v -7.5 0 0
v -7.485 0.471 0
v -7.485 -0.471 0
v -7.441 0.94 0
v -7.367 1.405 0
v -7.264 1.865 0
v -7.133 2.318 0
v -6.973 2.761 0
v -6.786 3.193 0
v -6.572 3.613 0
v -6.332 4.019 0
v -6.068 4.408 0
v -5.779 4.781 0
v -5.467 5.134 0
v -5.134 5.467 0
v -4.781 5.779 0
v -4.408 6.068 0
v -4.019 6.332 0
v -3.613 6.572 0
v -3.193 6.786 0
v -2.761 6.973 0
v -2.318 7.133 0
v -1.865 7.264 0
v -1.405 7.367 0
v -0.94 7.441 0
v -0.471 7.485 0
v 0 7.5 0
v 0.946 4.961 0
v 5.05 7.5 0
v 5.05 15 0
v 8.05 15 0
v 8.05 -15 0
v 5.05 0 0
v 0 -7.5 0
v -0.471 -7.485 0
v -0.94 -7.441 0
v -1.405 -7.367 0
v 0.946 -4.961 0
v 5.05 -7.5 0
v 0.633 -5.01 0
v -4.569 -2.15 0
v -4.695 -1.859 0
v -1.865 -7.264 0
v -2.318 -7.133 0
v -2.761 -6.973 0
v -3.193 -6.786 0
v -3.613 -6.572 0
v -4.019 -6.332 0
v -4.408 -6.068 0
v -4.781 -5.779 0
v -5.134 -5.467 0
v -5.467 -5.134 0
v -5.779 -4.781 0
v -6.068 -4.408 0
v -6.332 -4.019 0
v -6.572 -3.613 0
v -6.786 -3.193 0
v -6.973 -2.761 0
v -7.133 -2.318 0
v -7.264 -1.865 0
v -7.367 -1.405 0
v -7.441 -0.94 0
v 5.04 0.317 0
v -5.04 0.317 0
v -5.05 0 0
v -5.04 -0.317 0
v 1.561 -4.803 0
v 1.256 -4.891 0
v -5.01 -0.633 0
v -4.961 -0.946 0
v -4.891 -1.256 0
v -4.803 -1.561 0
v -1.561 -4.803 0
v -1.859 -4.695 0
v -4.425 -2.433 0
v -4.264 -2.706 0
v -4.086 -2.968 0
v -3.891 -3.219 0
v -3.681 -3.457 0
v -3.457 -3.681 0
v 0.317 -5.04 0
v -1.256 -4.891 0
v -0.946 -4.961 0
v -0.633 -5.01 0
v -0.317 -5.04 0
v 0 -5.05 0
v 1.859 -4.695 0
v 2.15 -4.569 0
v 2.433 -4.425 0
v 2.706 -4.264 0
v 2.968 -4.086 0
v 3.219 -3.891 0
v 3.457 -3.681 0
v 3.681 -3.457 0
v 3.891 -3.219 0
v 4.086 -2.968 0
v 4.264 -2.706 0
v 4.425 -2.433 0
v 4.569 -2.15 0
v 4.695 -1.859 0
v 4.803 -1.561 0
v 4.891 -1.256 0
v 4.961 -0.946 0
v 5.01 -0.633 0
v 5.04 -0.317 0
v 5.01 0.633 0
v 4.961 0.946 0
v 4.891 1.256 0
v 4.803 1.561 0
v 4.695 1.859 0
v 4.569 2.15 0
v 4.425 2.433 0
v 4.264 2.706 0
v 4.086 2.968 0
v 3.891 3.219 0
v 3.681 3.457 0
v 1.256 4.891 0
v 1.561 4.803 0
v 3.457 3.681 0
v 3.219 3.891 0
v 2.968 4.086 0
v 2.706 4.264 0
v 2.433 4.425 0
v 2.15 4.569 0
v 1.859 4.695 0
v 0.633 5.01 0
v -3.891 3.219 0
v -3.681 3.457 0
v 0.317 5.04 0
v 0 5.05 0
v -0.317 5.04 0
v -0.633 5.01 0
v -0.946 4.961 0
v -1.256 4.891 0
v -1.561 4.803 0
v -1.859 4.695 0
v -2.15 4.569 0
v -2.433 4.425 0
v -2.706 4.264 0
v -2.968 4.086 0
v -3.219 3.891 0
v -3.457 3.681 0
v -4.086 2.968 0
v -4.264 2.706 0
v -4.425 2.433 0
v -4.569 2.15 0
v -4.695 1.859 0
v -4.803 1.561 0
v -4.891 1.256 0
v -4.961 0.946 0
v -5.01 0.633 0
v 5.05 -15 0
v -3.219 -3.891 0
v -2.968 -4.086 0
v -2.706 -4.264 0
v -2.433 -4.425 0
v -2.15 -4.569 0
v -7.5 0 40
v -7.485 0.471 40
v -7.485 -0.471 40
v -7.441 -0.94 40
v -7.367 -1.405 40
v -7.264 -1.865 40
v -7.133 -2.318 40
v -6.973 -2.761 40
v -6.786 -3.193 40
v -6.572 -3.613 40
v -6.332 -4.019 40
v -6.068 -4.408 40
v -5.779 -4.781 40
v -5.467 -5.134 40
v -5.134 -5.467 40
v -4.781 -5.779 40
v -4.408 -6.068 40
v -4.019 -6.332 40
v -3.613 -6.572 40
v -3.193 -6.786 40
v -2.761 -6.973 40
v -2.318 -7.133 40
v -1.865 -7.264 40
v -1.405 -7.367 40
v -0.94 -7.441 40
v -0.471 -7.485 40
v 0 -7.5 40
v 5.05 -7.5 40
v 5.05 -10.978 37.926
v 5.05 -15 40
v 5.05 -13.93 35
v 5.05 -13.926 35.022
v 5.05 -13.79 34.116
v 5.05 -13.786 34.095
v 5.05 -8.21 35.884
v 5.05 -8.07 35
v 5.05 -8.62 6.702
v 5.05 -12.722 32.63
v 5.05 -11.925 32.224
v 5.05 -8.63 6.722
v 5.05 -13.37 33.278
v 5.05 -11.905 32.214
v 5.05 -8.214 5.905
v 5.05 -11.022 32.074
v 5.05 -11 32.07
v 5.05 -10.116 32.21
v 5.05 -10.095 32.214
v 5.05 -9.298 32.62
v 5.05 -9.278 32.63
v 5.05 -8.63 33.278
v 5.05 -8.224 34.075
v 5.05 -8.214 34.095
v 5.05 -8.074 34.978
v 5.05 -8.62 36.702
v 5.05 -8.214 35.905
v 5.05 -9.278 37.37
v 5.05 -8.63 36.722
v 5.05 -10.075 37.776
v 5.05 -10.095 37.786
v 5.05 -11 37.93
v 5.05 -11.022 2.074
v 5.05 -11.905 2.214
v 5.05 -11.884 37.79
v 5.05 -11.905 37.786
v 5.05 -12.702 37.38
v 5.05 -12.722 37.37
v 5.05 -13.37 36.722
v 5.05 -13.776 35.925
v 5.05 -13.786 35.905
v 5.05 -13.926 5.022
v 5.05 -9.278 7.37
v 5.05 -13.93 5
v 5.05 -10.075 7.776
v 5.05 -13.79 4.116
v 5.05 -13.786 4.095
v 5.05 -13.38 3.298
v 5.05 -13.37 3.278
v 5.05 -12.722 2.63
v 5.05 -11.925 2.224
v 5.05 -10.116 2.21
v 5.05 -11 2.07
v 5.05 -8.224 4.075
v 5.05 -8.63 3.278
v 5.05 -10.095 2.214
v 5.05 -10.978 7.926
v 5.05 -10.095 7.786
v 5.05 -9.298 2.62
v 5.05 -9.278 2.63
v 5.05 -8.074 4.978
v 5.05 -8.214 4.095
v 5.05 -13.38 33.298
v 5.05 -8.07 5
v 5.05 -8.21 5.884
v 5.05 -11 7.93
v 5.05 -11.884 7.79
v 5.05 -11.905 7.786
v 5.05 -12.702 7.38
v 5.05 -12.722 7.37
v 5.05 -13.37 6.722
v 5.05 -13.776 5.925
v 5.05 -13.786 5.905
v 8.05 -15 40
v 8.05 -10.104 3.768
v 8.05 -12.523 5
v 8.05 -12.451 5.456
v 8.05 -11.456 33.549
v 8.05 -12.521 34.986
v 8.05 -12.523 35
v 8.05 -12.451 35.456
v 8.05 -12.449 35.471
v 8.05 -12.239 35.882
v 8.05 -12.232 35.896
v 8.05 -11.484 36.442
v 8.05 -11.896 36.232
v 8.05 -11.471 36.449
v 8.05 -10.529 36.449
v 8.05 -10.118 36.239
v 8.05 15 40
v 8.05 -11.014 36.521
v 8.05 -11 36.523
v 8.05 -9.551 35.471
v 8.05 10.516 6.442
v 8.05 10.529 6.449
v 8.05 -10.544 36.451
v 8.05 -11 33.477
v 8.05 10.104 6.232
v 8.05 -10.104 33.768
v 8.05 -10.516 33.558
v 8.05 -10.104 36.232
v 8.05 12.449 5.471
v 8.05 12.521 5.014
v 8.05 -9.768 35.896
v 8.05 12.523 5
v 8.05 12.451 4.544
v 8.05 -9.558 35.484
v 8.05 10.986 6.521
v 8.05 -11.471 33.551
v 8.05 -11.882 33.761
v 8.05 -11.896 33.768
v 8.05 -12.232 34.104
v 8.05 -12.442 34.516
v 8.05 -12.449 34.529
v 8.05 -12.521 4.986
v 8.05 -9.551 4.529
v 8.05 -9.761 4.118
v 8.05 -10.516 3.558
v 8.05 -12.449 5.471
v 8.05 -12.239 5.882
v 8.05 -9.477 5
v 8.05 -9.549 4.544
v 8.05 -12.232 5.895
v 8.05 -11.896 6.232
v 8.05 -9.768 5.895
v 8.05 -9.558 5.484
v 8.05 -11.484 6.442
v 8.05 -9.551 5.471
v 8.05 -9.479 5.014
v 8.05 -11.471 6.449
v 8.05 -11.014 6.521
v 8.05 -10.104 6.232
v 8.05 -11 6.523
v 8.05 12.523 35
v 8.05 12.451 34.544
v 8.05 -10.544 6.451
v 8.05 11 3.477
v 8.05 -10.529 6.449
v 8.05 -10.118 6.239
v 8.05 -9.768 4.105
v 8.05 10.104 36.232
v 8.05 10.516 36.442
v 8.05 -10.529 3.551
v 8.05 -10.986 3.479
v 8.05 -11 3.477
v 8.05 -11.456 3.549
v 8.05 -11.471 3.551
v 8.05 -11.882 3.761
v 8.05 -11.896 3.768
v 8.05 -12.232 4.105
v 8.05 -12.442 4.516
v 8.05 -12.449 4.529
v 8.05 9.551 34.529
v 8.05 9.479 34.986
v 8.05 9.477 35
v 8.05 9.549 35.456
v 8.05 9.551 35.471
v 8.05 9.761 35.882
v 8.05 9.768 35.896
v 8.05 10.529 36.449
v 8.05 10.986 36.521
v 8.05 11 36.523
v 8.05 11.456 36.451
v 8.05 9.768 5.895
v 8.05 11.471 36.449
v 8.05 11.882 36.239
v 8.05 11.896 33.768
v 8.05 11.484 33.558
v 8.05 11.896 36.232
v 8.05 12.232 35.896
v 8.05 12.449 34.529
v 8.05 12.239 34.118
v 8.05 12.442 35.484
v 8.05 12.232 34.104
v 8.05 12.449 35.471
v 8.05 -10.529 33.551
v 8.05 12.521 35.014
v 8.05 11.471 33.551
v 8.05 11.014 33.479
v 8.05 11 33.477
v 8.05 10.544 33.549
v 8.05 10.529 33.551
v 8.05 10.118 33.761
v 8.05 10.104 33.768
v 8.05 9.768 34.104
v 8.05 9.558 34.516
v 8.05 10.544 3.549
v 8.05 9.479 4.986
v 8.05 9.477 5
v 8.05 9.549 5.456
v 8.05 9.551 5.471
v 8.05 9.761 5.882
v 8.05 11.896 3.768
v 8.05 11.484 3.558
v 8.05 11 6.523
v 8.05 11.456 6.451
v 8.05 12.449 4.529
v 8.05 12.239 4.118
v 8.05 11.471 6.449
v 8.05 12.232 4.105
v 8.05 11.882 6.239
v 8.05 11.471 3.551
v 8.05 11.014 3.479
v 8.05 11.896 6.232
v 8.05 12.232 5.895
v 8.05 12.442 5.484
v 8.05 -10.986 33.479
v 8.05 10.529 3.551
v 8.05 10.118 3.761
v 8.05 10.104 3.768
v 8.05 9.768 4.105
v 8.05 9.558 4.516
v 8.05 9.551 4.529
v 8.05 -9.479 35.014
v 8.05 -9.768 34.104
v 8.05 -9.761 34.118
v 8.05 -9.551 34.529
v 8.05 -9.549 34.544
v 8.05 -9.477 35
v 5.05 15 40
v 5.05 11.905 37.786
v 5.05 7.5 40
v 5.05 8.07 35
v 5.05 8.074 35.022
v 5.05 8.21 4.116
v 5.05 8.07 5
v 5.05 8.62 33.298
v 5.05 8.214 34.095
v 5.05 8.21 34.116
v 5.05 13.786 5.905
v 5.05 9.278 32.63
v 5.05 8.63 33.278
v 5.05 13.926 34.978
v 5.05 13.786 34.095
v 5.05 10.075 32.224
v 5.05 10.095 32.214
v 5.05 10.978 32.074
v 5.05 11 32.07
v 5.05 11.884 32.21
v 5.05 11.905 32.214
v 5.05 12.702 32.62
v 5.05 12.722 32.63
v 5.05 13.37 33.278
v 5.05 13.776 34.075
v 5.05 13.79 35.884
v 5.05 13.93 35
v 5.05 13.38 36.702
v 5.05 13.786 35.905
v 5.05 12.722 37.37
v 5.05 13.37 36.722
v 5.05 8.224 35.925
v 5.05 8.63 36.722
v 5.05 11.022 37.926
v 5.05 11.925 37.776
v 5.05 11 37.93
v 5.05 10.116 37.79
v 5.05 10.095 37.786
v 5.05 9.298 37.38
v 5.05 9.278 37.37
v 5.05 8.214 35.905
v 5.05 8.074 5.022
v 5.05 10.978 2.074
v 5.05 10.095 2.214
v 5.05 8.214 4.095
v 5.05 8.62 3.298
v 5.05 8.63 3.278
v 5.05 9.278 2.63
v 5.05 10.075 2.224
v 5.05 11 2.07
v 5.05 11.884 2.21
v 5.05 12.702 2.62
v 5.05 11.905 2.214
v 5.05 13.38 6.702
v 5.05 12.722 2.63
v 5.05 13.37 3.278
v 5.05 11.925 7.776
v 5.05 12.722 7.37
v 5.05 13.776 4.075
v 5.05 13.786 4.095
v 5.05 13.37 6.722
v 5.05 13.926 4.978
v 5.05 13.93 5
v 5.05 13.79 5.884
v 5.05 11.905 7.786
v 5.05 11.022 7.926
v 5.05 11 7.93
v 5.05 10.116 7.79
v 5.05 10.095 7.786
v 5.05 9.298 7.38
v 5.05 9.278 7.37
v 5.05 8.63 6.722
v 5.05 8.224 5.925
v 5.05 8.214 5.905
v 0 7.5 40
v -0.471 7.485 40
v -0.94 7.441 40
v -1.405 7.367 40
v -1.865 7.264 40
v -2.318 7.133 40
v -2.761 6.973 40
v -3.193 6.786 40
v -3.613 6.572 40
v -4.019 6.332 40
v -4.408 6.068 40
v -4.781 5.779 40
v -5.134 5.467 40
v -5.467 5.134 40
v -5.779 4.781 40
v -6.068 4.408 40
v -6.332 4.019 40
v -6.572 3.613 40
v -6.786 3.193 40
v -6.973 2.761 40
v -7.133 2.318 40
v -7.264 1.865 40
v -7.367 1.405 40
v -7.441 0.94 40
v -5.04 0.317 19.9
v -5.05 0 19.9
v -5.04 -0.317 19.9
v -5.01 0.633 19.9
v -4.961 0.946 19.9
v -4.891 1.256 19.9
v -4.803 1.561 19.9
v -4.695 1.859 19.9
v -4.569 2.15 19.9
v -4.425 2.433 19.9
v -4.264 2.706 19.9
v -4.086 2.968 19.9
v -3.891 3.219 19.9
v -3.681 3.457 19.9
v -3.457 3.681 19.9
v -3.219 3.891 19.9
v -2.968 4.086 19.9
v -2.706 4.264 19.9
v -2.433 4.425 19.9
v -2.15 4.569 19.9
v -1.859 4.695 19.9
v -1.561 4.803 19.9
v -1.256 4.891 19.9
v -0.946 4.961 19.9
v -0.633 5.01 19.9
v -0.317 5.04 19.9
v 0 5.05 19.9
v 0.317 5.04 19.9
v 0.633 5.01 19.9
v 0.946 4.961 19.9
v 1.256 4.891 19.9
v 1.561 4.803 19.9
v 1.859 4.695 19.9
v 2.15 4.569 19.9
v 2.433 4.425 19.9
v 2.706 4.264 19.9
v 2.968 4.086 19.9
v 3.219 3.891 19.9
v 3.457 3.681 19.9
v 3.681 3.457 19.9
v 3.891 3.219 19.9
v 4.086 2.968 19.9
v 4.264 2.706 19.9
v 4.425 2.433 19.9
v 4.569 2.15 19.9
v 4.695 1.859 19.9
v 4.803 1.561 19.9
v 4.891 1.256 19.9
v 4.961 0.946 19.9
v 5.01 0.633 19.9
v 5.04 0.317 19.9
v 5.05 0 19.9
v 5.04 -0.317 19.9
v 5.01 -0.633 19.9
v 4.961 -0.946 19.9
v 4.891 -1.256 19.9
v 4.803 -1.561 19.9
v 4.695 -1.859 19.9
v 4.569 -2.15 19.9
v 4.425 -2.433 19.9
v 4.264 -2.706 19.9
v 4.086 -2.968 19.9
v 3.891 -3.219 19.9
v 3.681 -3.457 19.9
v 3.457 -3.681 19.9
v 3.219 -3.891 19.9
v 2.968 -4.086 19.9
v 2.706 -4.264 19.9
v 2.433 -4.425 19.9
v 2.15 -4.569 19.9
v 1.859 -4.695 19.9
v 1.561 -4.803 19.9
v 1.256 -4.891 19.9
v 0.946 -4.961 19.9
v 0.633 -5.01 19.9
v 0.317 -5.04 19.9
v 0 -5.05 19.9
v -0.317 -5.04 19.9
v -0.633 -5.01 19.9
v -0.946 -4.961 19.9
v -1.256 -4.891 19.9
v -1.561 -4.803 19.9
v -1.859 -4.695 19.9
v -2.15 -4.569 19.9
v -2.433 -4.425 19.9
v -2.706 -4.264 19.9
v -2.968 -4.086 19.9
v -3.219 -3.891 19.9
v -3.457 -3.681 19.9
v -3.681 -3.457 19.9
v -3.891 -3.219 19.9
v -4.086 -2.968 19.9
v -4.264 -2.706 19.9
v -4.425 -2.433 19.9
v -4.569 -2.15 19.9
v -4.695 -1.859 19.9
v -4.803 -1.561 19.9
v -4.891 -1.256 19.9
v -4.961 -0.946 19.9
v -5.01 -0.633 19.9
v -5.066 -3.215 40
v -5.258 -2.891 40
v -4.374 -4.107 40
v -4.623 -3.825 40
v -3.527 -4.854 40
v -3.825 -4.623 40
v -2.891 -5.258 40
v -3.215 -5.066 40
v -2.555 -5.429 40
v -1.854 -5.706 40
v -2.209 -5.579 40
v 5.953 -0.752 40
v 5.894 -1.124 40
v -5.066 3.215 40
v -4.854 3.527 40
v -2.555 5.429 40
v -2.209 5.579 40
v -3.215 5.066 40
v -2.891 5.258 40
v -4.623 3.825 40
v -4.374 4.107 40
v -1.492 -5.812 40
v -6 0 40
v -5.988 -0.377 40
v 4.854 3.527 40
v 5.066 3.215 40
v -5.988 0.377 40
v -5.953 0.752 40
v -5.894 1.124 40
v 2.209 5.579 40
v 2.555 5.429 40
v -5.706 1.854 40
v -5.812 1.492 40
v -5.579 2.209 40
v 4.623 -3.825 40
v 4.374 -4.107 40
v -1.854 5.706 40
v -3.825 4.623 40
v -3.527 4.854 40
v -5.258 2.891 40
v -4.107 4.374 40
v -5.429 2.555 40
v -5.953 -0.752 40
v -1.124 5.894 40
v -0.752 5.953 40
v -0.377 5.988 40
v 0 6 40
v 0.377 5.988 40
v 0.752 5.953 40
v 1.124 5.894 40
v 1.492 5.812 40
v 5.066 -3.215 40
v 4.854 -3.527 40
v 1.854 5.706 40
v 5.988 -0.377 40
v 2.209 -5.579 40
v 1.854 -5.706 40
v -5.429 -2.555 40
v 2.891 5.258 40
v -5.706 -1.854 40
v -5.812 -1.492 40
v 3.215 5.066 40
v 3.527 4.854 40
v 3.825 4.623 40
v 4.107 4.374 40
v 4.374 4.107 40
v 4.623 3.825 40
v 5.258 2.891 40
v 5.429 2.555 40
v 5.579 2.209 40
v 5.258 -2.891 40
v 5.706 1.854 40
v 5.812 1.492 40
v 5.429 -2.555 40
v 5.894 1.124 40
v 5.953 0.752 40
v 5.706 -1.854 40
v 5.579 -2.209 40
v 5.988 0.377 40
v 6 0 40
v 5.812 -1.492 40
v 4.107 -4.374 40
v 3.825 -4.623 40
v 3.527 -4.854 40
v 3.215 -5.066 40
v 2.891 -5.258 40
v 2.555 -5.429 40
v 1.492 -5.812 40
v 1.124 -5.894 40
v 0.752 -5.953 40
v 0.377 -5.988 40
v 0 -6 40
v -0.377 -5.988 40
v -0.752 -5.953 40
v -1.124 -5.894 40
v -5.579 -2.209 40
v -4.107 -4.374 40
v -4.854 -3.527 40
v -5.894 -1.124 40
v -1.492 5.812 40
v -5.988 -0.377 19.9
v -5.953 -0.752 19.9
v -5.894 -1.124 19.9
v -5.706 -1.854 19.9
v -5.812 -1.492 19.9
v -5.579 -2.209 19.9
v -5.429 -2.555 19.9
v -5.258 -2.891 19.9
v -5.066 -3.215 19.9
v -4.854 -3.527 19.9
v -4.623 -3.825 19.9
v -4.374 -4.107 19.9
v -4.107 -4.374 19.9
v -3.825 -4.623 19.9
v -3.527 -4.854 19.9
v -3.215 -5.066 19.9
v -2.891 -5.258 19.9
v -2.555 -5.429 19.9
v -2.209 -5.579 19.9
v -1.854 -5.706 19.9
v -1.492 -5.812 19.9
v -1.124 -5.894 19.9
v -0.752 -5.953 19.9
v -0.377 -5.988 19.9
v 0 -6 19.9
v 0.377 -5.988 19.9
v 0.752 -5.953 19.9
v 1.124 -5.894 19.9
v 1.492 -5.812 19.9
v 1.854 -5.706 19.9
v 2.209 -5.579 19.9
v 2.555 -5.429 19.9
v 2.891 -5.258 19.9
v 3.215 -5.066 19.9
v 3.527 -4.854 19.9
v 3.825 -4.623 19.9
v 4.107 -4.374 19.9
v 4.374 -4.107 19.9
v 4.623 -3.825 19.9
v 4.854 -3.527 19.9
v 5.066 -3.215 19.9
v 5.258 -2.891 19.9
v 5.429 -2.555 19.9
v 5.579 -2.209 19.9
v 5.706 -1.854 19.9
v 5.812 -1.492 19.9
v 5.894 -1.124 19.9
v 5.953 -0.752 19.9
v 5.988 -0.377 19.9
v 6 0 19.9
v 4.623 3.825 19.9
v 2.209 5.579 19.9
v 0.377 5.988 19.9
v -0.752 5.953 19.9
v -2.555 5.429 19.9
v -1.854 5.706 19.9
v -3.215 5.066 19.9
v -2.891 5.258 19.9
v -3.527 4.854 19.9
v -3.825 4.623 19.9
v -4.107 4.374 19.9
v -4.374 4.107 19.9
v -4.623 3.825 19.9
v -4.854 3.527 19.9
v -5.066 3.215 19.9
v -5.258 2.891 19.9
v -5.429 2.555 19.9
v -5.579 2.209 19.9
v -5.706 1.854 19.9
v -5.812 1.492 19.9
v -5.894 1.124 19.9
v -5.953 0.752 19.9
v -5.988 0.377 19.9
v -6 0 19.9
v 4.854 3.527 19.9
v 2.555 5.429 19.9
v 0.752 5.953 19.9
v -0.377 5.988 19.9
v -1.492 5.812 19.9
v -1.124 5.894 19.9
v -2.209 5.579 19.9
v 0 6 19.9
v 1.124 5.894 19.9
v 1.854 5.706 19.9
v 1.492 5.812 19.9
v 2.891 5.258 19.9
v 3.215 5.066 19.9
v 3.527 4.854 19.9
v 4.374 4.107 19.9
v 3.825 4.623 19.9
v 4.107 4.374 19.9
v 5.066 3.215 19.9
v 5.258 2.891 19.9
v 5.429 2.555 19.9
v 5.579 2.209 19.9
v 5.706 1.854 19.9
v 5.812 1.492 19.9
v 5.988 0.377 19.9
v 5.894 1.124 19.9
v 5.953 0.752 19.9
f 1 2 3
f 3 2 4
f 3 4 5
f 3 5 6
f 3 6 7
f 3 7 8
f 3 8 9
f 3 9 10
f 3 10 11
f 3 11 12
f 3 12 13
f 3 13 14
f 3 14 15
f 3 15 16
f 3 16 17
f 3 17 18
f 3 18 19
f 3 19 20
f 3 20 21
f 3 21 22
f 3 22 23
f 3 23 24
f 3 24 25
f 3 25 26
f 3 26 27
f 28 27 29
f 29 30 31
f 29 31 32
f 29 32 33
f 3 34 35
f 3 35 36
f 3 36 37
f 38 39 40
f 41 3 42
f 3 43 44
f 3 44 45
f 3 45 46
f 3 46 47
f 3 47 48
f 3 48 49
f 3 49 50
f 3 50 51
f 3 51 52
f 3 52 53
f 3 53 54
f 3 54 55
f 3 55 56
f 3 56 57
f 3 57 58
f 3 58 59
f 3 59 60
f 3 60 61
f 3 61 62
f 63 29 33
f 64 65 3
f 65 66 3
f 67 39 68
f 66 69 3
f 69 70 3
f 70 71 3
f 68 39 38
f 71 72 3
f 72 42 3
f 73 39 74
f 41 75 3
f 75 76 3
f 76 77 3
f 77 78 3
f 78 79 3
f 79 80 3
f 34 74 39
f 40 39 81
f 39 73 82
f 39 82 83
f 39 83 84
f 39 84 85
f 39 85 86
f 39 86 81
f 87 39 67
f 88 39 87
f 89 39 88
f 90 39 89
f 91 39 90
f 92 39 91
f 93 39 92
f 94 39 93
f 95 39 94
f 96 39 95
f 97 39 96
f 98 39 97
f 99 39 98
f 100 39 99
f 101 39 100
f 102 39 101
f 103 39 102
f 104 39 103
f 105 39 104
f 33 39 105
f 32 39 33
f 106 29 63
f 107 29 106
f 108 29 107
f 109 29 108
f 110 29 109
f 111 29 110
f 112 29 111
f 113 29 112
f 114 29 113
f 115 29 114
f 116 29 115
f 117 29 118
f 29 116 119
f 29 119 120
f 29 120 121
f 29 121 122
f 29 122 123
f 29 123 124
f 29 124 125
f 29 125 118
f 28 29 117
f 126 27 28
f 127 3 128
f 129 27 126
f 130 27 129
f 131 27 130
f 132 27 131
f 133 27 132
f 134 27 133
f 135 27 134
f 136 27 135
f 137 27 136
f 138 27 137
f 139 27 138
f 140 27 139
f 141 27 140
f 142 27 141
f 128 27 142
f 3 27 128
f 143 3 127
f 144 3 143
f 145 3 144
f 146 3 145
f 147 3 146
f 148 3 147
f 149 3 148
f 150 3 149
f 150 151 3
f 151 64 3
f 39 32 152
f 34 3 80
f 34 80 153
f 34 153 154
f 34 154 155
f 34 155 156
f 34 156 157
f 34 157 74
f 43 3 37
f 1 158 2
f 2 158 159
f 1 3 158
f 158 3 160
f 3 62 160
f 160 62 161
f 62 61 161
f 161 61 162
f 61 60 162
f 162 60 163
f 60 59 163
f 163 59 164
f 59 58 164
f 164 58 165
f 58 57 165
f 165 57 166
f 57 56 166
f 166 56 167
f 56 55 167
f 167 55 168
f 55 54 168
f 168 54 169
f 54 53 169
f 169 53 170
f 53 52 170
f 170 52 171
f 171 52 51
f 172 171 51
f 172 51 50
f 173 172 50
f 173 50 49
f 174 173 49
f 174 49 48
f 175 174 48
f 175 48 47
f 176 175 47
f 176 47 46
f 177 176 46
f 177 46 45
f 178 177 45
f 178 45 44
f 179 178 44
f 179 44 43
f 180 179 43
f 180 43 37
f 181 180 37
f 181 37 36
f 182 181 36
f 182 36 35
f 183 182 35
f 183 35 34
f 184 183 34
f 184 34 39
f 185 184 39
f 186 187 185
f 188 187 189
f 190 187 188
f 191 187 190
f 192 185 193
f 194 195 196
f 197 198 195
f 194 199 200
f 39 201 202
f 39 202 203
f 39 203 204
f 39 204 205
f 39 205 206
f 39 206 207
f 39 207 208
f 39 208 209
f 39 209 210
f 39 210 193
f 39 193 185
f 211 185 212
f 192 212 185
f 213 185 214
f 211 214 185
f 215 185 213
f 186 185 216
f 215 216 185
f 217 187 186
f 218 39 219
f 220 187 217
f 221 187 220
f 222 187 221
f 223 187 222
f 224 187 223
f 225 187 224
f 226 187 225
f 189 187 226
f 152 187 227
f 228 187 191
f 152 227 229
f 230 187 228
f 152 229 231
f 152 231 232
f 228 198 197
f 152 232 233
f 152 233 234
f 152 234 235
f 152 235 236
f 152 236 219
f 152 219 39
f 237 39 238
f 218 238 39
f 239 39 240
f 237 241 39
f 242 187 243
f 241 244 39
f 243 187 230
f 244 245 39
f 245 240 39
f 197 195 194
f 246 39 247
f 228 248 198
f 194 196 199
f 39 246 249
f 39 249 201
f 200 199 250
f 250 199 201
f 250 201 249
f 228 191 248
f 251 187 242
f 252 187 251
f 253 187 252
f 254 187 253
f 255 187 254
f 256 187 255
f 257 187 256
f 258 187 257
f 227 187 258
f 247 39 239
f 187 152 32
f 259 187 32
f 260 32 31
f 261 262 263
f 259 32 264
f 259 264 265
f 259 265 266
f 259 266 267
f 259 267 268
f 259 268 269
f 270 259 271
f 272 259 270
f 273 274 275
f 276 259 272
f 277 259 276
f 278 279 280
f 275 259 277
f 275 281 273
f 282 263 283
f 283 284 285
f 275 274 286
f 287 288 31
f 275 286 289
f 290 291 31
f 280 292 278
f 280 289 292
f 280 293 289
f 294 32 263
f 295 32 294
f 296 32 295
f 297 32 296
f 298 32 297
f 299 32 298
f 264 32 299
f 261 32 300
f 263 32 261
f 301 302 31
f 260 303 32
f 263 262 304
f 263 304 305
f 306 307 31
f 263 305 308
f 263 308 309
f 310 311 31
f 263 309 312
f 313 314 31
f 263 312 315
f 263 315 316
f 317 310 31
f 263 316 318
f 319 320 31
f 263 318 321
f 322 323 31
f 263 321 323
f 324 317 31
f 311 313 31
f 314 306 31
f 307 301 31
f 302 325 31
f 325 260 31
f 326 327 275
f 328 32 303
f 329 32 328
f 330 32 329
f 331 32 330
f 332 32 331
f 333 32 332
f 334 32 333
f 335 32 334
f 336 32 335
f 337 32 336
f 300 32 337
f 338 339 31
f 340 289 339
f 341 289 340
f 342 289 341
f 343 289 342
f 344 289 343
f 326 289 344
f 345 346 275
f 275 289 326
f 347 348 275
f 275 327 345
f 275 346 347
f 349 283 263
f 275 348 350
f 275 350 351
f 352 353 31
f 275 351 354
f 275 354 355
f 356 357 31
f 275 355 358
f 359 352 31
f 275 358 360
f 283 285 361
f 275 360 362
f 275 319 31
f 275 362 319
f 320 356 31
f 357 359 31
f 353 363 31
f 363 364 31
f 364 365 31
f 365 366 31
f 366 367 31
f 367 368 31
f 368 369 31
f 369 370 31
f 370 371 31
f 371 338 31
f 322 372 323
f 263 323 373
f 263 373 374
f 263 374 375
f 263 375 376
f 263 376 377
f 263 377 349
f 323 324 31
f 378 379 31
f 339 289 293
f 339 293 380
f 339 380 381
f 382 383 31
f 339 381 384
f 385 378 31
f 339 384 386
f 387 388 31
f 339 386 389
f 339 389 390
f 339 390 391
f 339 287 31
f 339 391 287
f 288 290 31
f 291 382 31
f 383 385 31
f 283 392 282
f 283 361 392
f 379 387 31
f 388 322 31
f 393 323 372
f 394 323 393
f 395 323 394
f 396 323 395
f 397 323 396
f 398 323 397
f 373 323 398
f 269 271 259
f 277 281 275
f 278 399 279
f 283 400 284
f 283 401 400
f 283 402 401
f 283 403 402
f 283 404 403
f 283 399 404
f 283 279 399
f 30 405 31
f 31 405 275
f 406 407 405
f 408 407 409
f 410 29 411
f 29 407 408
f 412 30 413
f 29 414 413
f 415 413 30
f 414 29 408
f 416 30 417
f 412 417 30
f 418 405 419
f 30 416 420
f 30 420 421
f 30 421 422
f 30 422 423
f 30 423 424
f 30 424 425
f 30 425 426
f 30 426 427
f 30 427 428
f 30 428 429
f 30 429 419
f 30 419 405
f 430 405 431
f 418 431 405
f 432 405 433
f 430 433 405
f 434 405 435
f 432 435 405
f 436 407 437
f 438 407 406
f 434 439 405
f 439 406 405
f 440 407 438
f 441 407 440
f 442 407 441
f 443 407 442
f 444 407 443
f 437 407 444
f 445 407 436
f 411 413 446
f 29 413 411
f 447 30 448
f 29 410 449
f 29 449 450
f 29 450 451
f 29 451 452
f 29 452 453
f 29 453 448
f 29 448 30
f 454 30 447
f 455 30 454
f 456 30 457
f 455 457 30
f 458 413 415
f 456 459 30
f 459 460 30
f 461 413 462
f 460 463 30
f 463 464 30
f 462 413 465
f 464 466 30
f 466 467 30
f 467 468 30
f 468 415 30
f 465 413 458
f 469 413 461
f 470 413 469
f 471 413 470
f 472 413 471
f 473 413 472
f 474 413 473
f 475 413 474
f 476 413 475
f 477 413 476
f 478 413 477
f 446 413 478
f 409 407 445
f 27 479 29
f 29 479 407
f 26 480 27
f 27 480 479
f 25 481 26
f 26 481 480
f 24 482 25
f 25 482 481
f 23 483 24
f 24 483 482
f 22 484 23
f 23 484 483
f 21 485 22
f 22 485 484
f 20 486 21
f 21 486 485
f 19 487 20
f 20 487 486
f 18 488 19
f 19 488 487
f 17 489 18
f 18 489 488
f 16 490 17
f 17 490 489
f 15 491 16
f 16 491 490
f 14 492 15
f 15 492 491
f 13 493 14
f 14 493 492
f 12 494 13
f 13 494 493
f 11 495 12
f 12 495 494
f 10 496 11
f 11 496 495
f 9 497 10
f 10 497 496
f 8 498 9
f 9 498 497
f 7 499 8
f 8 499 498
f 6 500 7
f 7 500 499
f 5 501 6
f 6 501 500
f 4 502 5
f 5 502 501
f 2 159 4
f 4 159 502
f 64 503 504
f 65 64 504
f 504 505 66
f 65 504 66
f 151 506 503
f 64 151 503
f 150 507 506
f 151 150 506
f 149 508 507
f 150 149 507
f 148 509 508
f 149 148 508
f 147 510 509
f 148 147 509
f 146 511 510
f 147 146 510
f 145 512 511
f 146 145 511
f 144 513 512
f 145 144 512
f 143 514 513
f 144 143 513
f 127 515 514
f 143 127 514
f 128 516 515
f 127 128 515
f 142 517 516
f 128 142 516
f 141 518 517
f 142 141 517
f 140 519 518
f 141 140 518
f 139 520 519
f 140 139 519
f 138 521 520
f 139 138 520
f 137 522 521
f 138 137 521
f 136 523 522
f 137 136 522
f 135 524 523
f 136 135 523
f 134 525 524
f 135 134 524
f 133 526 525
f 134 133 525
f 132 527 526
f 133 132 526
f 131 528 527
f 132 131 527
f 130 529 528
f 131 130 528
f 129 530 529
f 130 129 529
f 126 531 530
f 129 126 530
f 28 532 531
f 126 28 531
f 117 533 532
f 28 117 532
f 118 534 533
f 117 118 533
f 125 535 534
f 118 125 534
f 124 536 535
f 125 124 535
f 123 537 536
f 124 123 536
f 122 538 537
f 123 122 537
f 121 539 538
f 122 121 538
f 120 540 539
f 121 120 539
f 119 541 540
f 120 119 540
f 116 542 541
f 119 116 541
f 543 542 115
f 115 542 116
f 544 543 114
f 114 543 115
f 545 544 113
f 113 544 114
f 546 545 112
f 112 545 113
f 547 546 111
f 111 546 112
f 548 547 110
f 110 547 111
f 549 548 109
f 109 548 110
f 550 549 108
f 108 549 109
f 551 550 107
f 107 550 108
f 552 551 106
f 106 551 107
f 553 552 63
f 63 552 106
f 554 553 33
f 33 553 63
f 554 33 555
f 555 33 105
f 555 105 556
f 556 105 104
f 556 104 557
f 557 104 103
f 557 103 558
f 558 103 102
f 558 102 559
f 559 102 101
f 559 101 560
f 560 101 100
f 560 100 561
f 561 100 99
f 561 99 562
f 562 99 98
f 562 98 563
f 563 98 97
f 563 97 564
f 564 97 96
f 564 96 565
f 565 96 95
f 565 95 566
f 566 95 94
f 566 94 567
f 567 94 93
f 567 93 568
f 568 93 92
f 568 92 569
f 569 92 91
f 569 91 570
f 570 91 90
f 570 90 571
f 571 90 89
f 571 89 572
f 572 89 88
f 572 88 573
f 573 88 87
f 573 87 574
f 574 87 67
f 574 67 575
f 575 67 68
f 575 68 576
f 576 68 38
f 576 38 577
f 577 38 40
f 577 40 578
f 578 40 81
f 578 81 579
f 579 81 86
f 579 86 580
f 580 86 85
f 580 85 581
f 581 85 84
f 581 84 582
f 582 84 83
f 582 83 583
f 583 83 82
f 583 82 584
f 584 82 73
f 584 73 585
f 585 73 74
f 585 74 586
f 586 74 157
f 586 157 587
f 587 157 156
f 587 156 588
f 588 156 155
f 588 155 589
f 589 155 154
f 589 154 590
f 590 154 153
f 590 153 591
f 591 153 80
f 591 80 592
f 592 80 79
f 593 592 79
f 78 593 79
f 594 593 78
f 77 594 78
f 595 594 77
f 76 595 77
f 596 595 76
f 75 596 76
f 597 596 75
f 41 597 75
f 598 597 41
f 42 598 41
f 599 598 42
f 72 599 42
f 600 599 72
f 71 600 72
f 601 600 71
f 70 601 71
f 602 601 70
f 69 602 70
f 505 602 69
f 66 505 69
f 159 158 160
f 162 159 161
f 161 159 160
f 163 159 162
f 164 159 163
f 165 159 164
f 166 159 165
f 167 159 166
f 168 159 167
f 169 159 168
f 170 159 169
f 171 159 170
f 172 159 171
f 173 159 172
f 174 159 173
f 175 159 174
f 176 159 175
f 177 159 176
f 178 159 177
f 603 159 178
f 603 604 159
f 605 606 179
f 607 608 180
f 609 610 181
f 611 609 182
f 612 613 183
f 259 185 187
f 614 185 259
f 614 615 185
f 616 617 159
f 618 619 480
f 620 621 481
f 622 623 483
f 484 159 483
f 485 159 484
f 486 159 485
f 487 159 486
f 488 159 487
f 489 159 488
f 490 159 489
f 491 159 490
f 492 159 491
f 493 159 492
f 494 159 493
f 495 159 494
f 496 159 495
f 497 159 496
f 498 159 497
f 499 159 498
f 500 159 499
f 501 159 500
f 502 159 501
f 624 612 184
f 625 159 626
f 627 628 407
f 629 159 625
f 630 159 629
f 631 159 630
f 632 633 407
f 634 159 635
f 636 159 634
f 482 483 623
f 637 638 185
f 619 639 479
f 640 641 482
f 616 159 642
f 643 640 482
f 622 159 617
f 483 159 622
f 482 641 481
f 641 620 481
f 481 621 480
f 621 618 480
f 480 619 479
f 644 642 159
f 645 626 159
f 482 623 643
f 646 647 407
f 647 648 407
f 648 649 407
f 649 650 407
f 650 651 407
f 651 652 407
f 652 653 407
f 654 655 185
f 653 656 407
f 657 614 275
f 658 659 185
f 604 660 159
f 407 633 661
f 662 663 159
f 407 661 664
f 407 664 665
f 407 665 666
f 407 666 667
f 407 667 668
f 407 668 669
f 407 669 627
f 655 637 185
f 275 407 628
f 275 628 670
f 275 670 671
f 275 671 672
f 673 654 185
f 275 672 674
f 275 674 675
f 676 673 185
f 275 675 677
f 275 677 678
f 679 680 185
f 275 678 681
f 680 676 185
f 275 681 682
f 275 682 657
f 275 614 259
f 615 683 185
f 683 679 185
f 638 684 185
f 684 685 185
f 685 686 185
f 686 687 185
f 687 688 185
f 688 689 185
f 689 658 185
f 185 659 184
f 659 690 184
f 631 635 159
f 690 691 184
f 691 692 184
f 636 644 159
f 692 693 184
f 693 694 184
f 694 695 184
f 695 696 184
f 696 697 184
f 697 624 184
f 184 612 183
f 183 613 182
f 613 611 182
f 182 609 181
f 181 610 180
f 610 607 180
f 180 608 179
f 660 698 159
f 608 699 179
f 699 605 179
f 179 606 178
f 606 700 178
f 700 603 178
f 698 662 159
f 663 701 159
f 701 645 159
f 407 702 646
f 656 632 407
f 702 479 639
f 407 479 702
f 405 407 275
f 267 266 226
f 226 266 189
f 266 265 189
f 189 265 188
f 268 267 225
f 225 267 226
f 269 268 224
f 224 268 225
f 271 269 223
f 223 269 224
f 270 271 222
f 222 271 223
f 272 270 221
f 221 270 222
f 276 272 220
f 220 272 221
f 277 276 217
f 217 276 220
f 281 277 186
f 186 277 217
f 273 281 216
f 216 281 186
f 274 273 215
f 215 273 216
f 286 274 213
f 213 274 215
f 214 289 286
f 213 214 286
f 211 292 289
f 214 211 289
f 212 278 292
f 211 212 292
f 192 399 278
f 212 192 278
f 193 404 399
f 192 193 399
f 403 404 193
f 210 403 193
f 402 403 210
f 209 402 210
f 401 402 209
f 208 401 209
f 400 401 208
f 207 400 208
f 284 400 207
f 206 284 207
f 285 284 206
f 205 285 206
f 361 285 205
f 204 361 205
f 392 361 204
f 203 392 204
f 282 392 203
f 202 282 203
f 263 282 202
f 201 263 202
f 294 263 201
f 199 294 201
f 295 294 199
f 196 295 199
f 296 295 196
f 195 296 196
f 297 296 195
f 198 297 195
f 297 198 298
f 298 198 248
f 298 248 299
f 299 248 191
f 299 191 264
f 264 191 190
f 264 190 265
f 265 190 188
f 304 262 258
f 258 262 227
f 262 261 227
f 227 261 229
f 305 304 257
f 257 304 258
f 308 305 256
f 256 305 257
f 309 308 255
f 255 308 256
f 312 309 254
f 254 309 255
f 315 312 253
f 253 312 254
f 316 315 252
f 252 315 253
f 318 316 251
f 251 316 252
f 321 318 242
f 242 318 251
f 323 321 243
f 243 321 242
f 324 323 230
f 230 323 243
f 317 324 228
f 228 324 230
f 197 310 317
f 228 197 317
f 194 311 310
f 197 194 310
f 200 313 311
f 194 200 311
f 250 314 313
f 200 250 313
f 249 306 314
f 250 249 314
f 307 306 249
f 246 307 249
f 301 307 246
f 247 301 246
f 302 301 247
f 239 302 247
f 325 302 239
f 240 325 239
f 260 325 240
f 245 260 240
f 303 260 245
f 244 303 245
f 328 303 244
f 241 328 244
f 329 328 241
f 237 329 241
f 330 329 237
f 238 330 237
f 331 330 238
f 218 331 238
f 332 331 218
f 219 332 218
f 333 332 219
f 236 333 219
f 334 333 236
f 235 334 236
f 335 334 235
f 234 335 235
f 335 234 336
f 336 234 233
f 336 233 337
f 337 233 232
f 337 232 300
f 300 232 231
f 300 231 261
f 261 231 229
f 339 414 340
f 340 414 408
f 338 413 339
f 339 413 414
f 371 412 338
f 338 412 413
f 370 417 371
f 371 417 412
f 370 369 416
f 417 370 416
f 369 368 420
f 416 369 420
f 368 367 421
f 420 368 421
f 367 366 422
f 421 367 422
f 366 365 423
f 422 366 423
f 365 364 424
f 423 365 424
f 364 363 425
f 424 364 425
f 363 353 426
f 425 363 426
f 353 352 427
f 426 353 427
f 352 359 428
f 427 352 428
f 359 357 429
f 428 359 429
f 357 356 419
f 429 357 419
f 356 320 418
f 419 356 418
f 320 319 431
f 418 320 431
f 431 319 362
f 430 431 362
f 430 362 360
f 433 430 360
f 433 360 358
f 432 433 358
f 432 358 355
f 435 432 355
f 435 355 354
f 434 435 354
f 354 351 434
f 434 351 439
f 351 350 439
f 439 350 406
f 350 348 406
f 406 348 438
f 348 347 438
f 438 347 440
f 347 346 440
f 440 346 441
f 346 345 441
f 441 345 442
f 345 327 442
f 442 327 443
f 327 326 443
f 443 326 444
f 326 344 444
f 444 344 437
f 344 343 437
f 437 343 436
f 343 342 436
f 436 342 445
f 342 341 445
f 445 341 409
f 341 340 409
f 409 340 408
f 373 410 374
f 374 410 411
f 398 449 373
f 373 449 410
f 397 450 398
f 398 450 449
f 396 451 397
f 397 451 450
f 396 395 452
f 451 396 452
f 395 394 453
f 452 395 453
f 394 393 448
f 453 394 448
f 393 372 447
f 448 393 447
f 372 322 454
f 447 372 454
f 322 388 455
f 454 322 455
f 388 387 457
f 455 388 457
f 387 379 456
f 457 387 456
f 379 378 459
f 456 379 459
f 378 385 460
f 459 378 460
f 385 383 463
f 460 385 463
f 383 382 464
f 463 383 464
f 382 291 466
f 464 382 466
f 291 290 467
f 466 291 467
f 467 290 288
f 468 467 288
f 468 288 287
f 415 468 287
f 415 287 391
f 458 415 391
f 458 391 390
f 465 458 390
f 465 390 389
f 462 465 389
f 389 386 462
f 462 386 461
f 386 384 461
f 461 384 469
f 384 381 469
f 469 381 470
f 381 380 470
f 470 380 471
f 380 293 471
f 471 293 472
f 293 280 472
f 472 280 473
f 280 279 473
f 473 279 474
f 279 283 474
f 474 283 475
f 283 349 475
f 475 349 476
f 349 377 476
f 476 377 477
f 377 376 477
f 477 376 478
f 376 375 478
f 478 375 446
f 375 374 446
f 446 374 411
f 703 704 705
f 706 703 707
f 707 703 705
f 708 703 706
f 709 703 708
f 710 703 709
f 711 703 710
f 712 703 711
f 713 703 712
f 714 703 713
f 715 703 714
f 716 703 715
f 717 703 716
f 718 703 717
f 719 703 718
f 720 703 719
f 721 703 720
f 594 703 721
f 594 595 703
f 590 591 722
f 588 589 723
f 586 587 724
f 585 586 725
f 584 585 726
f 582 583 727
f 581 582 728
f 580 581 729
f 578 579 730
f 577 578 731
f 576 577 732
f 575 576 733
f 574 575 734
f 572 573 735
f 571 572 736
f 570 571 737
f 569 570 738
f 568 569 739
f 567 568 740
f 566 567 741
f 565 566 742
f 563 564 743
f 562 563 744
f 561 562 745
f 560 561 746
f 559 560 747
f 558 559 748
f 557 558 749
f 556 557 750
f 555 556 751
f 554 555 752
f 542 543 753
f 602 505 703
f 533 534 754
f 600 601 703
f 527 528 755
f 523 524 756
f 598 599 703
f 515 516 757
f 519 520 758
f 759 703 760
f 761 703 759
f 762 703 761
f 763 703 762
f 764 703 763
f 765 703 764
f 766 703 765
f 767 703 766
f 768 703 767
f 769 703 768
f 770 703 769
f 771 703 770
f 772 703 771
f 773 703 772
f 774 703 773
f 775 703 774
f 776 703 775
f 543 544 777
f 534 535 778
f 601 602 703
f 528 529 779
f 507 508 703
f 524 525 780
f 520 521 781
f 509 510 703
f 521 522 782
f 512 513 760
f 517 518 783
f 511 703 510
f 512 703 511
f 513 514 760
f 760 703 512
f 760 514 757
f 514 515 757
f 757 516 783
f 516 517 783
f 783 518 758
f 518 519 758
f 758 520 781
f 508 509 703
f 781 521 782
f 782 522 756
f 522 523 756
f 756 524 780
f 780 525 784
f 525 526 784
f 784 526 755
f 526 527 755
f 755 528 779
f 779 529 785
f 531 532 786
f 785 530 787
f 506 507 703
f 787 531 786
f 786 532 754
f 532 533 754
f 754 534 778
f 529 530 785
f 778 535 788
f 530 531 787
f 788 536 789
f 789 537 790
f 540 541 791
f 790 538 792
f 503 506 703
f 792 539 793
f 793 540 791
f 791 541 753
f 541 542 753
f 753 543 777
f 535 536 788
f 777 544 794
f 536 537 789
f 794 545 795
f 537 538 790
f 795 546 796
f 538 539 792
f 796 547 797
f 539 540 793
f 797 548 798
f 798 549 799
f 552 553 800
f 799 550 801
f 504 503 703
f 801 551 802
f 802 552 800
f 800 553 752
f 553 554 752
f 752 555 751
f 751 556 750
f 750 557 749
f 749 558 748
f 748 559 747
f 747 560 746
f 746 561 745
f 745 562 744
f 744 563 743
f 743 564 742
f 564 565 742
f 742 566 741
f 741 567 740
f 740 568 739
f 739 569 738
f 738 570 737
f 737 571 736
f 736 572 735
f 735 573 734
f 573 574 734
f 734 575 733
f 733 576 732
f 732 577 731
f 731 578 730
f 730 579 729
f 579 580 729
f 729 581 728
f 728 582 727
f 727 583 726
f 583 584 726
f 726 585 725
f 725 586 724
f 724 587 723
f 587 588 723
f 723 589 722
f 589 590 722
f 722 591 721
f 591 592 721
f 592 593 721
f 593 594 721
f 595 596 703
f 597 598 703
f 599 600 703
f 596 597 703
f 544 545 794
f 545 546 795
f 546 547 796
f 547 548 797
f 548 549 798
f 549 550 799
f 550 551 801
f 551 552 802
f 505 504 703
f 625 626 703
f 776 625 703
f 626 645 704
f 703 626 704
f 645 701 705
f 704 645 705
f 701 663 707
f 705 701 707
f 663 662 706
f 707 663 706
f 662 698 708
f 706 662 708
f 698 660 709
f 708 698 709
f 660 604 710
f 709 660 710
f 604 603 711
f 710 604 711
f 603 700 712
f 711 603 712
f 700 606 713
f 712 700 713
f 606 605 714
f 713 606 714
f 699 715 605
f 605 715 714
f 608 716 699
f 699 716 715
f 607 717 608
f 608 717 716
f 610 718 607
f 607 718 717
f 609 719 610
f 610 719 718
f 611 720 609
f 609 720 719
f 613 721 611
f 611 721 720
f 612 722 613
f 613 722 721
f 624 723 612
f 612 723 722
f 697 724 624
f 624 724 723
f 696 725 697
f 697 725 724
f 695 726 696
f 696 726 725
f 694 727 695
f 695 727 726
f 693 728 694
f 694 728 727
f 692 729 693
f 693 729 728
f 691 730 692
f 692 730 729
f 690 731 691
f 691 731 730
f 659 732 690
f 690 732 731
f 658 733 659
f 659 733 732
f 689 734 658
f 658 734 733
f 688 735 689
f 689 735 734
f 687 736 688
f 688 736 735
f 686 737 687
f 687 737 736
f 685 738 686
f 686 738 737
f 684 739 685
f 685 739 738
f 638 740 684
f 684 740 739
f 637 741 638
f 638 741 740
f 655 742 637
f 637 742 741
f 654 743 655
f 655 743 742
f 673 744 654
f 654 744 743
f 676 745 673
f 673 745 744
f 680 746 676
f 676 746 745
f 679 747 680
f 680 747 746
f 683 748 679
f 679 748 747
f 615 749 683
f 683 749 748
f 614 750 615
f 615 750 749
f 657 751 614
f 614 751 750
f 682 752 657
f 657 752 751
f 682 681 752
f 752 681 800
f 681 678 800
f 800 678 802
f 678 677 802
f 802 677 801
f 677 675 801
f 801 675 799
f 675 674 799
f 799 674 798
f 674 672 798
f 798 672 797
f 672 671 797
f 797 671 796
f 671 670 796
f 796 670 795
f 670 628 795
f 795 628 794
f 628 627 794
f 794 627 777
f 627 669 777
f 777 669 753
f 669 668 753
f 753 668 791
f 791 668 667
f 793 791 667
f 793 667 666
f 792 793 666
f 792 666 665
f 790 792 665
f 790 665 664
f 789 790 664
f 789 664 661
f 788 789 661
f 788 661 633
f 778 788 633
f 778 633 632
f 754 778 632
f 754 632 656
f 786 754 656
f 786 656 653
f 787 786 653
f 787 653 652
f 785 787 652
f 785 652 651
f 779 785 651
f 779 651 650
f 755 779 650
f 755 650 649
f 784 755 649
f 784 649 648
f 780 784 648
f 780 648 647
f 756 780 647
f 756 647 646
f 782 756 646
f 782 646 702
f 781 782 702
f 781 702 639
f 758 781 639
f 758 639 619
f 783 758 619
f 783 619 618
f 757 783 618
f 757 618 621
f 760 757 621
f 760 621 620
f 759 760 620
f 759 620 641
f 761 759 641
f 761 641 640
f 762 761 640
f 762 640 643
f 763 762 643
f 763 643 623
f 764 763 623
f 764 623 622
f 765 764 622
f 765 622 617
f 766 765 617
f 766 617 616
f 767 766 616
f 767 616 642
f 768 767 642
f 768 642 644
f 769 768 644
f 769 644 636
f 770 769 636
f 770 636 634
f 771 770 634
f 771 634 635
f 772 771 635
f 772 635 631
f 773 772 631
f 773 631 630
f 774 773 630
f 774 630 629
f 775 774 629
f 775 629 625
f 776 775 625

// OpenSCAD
difference()
{
	union()
	{
		cylinder(40,7.5,7.5,$fn=100);
		translate([5.05,-15,0]){cube([3,30,40]);}
		translate([0,-7.5,0]){cube([7.5,15,40]);}
}

	translate([0,0,-.1]){cylinder(20.1,5.05,5.05,$fn=100);}
	translate([0,0,19.9]){cylinder(20.2,6,6,$fn=100);}
	rotate(a=[0,-90,0]){
						translate([5,11,-8.1]){cylinder(3.2,1.5,3,$fn=20);}
						translate([35,11,-8.1]){cylinder(3.2,1.5,3,$fn=20);}
						translate([5,-11,-8.1]){cylinder(3.2,1.5,3,$fn=20);}
						translate([35,-11,-8.1]){cylinder(3.2,1.5,3,$fn=20);}
					}

}
